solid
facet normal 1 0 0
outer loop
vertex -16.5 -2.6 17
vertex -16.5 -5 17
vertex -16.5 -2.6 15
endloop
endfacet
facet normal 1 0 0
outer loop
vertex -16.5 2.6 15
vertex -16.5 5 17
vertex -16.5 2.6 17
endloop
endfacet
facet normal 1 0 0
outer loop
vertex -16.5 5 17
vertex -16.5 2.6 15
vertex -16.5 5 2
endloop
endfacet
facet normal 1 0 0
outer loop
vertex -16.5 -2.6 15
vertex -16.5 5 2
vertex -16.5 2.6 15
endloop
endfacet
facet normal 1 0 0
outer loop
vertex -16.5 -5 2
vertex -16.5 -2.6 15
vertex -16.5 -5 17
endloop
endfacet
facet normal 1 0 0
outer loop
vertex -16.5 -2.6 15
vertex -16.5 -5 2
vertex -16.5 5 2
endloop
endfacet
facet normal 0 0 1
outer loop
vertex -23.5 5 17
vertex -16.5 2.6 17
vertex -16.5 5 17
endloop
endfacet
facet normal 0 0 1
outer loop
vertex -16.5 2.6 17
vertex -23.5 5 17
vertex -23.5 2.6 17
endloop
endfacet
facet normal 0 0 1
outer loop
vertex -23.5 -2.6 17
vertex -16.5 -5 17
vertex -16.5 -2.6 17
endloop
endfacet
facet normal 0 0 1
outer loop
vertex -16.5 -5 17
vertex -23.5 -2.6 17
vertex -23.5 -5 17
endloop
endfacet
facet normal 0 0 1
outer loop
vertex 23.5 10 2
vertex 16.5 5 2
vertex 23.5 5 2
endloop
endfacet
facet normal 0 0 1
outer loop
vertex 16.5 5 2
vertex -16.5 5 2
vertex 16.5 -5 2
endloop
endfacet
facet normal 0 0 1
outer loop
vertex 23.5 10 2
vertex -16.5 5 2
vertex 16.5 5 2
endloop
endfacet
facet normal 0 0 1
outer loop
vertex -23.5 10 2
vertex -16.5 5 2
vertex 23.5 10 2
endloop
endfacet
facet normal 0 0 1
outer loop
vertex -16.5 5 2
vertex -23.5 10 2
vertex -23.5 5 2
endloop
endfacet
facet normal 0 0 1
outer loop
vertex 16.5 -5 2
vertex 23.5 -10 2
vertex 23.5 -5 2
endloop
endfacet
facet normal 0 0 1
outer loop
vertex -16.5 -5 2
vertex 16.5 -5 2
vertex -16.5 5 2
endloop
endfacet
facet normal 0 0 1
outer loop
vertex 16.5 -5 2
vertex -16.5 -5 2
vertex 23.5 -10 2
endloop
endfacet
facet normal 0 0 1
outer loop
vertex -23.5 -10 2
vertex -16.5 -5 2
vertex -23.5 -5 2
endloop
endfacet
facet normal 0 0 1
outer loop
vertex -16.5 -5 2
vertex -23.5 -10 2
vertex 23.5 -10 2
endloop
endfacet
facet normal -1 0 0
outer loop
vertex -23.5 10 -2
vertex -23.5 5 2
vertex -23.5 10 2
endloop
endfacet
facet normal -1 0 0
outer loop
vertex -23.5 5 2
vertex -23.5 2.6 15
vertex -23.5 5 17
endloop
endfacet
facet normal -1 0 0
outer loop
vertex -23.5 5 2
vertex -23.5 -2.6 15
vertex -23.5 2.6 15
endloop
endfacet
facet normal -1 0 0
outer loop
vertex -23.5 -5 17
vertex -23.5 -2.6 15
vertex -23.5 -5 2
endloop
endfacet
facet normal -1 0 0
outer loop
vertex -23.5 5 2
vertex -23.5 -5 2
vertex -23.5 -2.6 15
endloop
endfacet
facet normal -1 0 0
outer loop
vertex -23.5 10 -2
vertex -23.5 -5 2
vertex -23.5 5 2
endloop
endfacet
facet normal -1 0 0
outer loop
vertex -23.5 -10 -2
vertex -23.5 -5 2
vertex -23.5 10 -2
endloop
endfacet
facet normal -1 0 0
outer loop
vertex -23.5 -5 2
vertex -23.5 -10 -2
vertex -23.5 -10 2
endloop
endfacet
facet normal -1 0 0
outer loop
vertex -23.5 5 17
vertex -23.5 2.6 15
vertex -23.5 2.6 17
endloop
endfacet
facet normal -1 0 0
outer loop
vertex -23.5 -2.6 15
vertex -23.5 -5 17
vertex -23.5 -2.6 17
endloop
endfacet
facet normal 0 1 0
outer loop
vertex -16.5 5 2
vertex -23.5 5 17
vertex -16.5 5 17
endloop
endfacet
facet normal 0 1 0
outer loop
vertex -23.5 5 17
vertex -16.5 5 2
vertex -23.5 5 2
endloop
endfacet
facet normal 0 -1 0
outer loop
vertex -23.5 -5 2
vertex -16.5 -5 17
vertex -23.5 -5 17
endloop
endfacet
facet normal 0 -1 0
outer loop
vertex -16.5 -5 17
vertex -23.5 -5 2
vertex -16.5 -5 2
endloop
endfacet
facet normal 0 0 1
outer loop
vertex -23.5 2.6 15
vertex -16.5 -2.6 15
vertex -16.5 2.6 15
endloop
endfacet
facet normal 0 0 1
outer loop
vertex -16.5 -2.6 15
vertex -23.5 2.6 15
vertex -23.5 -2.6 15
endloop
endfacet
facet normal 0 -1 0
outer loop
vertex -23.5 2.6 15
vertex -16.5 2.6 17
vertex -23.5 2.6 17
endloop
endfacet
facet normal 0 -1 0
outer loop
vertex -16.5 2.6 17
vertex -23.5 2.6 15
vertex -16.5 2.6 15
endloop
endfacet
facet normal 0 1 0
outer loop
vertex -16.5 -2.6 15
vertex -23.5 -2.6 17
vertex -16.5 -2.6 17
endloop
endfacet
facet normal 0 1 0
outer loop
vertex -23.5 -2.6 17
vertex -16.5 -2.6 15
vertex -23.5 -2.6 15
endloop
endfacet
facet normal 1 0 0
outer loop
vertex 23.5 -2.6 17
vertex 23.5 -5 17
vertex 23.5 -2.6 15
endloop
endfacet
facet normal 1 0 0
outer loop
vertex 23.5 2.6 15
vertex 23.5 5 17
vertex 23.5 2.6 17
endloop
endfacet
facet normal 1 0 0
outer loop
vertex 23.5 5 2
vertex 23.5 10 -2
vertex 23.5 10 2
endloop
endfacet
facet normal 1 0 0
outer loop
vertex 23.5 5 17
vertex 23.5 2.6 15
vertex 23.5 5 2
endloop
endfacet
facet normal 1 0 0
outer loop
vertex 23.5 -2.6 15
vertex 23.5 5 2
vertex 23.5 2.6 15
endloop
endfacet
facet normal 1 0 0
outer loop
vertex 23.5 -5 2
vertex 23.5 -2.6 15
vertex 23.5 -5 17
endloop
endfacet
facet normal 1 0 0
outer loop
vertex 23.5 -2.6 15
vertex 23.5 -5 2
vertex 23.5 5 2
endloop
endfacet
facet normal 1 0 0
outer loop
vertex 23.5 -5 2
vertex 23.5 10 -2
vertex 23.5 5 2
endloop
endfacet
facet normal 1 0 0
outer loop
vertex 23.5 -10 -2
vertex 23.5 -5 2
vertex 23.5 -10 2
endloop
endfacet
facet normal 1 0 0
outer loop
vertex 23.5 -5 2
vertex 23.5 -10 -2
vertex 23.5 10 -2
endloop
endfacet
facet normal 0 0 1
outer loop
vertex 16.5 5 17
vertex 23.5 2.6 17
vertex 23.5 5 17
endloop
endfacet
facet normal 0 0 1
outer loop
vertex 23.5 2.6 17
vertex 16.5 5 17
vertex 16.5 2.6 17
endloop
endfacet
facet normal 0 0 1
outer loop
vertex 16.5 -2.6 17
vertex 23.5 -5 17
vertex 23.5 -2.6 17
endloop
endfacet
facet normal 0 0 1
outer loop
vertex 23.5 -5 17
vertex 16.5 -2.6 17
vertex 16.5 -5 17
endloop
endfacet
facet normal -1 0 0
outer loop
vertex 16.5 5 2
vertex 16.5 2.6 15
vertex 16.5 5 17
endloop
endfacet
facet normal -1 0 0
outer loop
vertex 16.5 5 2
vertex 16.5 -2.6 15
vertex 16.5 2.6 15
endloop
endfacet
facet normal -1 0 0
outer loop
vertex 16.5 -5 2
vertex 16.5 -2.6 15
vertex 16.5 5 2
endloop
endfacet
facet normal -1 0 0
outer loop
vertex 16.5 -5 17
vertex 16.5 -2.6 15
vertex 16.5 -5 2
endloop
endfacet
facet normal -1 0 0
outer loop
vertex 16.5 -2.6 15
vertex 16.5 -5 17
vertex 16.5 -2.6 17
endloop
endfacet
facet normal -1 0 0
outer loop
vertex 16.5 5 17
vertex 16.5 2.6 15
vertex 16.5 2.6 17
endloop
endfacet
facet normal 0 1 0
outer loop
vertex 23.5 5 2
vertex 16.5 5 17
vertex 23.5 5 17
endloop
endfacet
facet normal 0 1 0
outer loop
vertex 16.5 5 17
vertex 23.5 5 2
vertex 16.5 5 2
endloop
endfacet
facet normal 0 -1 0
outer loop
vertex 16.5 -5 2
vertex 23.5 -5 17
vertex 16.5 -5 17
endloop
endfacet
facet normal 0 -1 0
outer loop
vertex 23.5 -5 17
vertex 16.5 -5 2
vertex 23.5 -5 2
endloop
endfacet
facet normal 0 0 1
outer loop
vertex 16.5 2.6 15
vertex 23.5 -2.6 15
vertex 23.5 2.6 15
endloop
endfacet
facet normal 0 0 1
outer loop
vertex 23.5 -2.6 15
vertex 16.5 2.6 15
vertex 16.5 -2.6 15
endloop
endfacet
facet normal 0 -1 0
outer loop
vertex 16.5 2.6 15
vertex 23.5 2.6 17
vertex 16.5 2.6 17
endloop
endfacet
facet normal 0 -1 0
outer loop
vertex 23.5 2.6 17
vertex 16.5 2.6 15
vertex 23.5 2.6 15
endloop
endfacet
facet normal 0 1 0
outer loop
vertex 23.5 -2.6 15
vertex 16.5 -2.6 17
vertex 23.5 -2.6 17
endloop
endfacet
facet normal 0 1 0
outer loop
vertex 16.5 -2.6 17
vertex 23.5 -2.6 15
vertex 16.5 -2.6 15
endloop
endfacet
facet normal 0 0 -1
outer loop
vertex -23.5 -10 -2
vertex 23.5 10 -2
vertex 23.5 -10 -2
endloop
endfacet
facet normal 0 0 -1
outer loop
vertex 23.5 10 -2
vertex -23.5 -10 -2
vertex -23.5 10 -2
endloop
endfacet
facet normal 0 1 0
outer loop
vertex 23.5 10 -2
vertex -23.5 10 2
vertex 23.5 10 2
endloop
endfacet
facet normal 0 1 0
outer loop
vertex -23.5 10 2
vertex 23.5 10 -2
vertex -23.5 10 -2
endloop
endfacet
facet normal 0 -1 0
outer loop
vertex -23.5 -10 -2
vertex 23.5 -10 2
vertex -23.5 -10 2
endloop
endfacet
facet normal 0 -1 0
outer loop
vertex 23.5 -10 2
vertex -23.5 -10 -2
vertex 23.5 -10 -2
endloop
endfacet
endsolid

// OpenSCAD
// file: BOSL2/std.scad
// Minimal BOSL2 compatibility shim for bundled gallery models.
// It implements only the helpers used by the imported OpenSCAD projects.

CENTER = [0, 0, 0];
BOTTOM = [0, 0, -1];
TOP = [0, 0, 1];
LEFT = [-1, 0, 0];
RIGHT = [1, 0, 0];
FRONT = [0, -1, 0];
BACK = [0, 1, 0];

module up(z=0) {
    translate([0, 0, z]) children();
}

module down(z=0) {
    translate([0, 0, -z]) children();
}

module attach(anchor=CENTER) {
    children();
}

module cuboid(size=[1, 1, 1], anchor=CENTER) {
    center = anchor == CENTER;
    translate(center ? [0, 0, 0] : [0, 0, size[2] / 2])
        cube(size, center=true);
    children();
}

module xcyl(h=1, r=1, anchor=CENTER) {
    center = anchor == CENTER;
    translate(center ? [0, 0, 0] : [h / 2, 0, 0])
        rotate([0, 90, 0])
            cylinder(h=h, r=r, center=true);
}
// main file
include <BOSL2/std.scad>

union(){
    cuboid([47,20,4])
    translate([20,0,15/2+2]){
        difference(){
            cuboid([7,10,15]);
            translate([0,0,15/2-2/2]){
                cuboid([10,5.2,2]);
            }
        }
    }
    translate([-20,0,15/2+2]){
        difference(){
            cuboid([7,10,15]);
            translate([0,0,15/2-2/2]){
                cuboid([10,5.2,2]);
            }
        }
    }
}
